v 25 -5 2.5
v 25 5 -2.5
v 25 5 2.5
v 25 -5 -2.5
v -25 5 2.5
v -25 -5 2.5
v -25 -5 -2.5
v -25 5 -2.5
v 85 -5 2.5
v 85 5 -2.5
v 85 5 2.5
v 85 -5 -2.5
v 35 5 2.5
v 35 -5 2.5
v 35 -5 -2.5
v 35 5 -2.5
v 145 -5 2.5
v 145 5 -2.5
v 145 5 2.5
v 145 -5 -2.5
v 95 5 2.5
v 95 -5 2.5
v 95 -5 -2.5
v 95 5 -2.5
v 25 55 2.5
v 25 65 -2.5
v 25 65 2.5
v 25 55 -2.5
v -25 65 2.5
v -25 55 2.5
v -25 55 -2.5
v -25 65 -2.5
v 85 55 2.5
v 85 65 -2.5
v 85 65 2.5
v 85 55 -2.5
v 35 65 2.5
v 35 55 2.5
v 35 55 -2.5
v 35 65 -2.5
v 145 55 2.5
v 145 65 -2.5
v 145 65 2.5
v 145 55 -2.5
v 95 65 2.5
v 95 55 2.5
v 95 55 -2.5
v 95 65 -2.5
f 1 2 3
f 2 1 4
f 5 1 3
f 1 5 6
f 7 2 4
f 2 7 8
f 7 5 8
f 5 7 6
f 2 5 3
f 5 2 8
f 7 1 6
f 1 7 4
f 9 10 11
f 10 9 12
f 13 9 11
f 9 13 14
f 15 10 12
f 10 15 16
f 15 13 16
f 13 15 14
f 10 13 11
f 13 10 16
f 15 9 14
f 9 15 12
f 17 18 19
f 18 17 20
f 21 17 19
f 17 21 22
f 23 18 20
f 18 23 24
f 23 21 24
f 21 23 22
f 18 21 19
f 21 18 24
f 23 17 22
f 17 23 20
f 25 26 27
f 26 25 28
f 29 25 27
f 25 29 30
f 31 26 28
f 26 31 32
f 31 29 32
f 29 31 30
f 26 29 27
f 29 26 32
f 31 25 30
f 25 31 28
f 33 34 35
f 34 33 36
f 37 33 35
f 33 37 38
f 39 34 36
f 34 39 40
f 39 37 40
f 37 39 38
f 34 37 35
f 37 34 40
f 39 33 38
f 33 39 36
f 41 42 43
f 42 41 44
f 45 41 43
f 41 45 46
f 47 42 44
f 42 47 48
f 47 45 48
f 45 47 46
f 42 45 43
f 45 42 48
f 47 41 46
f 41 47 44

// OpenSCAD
// Function to create a rectangular prism
module rectangular_prism(length, width, height) {
    cube([length, width, height], center=true);
}

// Dimensions for the rectangular prisms
length = 50;  // Length of the prism
width = 10;   // Width of the prism
height = 5;   // Height of the prism

// Positions for the six rectangular prisms
translate([0, 0, 0]) rectangular_prism(length, width, height);  // Prism 1
translate([60, 0, 0]) rectangular_prism(length, width, height); // Prism 2
translate([120, 0, 0]) rectangular_prism(length, width, height); // Prism 3
translate([0, 60, 0]) rectangular_prism(length, width, height); // Prism 4
translate([60, 60, 0]) rectangular_prism(length, width, height); // Prism 5
translate([120, 60, 0]) rectangular_prism(length, width, height); // Prism 6
